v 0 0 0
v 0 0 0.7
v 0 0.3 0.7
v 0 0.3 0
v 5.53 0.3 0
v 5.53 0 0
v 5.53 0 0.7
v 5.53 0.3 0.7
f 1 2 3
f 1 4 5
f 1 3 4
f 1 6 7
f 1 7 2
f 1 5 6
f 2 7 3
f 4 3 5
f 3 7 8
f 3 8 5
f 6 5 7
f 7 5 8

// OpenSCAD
// Start: lazy_union
default_5_default_5();
// End: lazy_union

// Modules.

// 'PartMaterial undef-default - default 5.0'
module default_5_default_5() {
  // 'None : _combine_solids_and_holes'
  union() {
    // 'default : _combine_solids_and_holes'
    union() {
      // 'terminal : _combine_solids_and_holes'
      union() {
        // 'terminal'
        cube(size=[5.529999999999999, 0.3, 0.7]);
      }
    }
  }
} // end module default_5_default_5
